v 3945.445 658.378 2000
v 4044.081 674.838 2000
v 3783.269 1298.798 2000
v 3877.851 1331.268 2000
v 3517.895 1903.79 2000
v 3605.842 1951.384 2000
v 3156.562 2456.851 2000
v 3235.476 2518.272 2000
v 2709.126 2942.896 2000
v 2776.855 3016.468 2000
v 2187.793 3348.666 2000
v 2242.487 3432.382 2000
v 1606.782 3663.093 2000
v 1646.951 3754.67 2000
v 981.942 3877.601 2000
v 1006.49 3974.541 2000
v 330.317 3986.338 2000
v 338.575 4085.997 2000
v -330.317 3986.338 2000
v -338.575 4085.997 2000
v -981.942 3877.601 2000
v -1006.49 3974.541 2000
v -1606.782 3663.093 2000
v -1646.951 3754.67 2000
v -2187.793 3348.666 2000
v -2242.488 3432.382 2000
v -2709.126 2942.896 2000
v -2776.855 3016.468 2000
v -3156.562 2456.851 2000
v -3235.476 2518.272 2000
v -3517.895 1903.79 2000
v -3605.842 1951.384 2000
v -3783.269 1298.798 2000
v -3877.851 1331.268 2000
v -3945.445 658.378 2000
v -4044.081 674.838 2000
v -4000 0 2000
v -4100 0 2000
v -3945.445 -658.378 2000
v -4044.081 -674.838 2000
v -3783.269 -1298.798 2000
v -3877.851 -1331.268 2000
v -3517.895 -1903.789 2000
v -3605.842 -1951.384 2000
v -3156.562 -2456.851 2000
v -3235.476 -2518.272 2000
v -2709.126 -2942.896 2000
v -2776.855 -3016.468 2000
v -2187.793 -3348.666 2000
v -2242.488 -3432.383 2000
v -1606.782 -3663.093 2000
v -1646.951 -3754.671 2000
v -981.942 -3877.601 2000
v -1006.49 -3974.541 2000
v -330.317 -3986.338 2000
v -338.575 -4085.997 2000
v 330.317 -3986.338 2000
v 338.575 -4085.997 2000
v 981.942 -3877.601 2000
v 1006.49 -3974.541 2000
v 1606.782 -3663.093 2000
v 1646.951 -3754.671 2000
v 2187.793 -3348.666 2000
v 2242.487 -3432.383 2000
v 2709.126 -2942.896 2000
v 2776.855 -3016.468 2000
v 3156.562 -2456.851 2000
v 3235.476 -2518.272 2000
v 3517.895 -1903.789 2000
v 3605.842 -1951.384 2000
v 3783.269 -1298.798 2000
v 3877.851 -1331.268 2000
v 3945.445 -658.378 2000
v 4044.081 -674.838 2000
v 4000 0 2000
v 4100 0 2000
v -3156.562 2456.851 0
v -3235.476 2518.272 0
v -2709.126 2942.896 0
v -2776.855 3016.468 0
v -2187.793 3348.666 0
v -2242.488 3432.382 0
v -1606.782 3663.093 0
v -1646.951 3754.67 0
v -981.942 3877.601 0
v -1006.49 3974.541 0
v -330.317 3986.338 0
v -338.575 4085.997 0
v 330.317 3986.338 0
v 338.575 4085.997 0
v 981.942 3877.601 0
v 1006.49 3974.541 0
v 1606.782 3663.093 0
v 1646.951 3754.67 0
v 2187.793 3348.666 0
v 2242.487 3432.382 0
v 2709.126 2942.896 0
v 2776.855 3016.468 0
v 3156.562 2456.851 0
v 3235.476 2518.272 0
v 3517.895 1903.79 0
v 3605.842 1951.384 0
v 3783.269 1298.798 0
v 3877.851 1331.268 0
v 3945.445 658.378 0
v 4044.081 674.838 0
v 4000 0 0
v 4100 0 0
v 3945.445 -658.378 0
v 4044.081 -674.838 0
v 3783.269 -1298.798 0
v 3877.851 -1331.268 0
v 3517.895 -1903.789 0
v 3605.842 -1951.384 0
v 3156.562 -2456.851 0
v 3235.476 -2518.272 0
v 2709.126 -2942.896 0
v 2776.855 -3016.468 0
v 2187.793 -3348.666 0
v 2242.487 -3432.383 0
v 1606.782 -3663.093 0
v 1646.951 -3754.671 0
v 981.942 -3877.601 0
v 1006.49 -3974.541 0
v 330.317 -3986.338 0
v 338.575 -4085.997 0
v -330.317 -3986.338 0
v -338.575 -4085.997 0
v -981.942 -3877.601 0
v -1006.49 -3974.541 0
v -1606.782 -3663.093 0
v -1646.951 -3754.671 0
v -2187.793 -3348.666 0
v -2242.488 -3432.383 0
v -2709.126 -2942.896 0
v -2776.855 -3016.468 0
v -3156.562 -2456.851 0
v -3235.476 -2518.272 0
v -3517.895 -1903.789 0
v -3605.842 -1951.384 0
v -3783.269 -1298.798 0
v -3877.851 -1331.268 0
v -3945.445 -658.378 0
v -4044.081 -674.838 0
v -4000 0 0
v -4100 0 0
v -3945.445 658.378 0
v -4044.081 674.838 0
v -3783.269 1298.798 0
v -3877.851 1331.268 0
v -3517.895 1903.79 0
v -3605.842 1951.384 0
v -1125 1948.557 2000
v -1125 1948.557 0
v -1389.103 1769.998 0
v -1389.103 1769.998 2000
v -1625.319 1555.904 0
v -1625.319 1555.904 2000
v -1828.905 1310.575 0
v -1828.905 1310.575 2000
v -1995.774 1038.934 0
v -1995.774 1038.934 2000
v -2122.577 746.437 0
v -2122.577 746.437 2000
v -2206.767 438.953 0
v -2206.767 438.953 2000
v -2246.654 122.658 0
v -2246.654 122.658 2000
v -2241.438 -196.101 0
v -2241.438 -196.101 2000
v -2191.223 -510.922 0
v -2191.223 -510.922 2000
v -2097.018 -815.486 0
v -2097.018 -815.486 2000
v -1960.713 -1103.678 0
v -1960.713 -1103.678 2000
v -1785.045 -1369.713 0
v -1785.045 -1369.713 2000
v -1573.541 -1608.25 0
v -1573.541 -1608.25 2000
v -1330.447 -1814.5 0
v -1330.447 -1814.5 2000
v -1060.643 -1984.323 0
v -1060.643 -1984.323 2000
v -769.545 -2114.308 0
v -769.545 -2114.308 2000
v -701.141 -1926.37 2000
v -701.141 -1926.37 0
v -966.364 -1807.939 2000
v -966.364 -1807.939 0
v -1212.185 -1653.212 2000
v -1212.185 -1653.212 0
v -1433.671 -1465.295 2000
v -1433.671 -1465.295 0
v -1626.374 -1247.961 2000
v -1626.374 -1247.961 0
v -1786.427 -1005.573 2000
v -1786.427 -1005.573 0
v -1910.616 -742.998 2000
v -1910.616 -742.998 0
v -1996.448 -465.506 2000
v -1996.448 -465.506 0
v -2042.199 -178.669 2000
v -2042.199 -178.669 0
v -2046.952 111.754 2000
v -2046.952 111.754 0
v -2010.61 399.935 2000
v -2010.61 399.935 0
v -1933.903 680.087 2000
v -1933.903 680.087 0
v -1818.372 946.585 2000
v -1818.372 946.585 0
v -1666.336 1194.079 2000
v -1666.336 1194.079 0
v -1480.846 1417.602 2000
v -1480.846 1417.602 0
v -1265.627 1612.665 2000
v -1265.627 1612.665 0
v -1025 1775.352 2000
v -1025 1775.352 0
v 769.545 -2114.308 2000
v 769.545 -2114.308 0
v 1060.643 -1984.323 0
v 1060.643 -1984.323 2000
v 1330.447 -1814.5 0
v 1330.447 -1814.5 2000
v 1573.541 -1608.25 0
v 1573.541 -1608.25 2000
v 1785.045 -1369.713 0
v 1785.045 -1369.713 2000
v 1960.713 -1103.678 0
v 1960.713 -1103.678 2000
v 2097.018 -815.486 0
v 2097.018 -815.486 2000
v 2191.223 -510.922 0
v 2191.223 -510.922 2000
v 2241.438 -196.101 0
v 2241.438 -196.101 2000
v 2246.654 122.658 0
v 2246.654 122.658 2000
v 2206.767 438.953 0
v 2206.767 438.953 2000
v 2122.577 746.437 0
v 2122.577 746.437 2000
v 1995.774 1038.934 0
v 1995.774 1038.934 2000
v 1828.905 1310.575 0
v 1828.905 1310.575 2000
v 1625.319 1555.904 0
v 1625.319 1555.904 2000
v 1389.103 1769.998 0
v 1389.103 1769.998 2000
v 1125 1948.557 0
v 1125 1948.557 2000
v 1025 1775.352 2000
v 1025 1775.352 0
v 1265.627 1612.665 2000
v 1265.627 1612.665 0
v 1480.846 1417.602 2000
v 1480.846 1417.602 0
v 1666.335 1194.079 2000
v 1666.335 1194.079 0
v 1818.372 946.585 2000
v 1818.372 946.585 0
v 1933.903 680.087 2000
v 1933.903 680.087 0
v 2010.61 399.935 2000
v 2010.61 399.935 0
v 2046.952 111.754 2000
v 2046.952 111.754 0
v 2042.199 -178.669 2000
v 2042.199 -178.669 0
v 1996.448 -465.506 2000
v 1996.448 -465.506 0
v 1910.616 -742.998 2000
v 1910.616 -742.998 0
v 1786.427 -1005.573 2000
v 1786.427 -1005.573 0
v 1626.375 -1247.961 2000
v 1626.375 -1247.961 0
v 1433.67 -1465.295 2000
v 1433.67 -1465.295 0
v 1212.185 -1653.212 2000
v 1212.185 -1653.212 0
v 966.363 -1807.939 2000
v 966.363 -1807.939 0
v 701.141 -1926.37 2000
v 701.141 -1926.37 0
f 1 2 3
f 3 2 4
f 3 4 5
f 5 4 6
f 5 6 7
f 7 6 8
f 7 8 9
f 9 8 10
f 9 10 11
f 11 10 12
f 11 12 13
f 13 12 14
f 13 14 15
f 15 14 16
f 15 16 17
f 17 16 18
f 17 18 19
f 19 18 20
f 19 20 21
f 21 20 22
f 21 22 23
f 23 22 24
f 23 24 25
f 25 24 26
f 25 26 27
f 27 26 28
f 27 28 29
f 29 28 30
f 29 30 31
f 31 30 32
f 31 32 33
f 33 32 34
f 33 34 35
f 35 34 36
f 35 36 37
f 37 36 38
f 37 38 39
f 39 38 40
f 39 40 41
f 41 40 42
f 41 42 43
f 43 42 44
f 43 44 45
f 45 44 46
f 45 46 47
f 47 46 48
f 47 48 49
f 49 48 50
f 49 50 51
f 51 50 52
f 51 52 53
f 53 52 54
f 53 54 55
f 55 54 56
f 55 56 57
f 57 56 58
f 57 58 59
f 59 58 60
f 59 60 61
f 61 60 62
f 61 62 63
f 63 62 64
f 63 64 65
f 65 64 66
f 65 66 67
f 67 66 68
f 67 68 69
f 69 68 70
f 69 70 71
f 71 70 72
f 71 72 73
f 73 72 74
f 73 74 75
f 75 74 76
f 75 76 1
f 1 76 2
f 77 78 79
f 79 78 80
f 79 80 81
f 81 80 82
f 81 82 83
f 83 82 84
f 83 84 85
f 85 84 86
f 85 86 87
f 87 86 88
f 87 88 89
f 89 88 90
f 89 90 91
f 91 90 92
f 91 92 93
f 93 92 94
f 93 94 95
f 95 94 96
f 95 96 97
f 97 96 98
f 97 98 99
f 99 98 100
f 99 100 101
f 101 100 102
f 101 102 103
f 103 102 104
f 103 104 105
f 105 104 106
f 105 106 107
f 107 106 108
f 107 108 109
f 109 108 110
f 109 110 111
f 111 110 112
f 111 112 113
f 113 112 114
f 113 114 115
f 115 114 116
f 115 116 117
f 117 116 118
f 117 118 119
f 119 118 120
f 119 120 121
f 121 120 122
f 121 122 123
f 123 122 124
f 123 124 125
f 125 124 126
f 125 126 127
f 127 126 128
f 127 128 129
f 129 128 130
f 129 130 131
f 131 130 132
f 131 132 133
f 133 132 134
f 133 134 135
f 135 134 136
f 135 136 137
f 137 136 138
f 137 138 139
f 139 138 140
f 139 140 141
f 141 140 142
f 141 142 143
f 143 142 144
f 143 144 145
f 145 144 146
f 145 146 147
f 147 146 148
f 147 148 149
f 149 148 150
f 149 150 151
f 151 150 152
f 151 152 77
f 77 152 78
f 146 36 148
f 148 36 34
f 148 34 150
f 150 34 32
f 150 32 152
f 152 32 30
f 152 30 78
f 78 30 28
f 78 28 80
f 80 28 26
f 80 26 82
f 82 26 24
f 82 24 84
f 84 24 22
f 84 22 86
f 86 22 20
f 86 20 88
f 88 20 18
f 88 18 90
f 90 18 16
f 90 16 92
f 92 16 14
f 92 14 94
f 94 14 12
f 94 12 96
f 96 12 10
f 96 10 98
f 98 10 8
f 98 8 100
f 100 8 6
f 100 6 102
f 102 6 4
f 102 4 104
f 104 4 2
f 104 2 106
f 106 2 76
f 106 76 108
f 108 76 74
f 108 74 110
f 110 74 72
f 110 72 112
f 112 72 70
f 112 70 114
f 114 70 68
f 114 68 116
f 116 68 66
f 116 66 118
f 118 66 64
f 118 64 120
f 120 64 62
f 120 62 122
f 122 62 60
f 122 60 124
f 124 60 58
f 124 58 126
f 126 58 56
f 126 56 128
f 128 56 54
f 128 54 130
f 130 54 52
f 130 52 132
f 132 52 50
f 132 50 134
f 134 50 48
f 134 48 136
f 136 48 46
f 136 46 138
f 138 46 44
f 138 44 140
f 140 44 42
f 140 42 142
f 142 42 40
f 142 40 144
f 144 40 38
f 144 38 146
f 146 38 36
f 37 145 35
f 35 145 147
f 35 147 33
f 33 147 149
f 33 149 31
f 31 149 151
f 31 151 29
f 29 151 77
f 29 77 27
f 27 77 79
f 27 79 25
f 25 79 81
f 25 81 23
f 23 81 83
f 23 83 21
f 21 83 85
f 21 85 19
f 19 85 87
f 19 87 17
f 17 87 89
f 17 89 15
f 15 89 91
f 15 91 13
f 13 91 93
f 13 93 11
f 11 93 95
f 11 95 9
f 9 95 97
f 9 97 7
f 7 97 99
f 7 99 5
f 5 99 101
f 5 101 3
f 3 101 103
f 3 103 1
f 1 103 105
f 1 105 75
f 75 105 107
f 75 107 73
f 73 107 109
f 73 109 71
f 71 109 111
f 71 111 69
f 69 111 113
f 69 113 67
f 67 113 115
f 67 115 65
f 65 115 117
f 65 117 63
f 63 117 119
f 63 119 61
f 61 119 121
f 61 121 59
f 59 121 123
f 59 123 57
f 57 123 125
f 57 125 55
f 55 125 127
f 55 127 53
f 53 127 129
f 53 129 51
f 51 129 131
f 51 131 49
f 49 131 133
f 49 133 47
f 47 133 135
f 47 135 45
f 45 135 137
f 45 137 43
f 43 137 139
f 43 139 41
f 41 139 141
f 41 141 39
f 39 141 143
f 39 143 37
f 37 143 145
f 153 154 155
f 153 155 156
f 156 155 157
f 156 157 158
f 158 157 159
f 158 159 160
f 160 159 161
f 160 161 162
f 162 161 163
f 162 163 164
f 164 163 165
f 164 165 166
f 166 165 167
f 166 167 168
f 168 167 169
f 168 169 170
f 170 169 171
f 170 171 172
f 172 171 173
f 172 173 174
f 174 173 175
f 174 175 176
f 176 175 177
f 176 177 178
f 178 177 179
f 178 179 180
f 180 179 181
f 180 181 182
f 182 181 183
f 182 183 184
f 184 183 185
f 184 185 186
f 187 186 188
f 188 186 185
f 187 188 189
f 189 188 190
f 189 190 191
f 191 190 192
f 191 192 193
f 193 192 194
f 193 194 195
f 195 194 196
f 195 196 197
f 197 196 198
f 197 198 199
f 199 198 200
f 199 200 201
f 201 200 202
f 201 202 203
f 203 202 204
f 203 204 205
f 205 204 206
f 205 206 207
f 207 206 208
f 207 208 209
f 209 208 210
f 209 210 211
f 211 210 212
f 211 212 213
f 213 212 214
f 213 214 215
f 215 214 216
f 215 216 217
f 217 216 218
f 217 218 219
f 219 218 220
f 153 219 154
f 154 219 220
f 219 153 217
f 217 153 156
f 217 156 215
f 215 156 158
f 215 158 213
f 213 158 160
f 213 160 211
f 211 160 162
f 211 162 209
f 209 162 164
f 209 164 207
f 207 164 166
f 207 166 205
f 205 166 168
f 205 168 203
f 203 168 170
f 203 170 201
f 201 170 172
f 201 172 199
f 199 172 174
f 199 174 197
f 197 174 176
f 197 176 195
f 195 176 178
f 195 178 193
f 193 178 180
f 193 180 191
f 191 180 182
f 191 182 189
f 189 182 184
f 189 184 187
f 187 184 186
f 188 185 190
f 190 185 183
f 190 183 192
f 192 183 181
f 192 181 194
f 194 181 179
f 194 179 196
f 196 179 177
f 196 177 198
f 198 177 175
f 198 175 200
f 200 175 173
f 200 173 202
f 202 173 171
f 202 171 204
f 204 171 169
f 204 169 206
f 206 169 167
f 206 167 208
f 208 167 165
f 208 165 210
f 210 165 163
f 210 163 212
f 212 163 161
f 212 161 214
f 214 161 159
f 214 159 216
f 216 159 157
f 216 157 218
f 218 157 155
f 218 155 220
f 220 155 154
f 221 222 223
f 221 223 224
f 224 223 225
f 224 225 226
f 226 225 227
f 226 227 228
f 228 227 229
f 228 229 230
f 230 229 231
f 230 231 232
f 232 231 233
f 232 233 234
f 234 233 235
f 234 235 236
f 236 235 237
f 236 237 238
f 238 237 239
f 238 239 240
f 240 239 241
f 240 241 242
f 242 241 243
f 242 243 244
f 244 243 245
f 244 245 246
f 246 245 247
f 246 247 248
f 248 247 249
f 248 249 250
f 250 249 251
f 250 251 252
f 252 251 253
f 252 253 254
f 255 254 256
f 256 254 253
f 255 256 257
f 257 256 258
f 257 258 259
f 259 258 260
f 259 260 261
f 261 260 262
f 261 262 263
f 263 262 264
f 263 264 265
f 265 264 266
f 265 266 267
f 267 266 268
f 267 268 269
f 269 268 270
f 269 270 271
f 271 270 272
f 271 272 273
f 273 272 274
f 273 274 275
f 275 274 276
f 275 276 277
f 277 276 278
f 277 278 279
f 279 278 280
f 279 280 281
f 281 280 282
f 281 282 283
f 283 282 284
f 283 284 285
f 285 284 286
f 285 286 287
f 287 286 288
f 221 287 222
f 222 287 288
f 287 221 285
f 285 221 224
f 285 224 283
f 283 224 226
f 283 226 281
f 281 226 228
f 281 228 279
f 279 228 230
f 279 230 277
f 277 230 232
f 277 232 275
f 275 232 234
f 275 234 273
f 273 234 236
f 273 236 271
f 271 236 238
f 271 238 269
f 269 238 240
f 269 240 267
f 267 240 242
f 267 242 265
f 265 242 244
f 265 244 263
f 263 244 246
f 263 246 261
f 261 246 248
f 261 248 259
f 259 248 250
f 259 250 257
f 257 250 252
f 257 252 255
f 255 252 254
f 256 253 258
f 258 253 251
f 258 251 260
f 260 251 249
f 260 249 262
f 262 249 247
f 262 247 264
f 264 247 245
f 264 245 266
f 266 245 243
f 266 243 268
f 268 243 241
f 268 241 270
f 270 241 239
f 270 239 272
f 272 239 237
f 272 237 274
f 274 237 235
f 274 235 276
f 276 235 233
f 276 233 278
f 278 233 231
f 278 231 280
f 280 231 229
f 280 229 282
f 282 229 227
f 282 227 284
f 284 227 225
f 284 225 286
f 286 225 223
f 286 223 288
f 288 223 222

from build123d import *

# Parameters (mm, degrees)
SKETCH_1_R        = 4100
SKETCH_1_R_2      = 4000
EXTRUDE_1_DEPTH   = 2000
EXTRUDE_2_DEPTH   = 2000
EXTRUDE_2_2_DEPTH = 2000


with BuildPart() as part:
    # 草图1 → 凸台-拉伸1 (new body)
    with BuildSketch(Plane.XY):
        Circle(SKETCH_1_R)
        Circle(SKETCH_1_R_2, mode=Mode.SUBTRACT)
    extrude(amount=EXTRUDE_1_DEPTH)


with BuildPart() as body_2:
    # 草图2 → 凸台-拉伸2 (new body)
    with BuildSketch(Plane.XY):
        with BuildLine():
            Line((-769.545322483, -2114.308396768), (-701.141293818, -1926.369872611))
            ThreePointArc((-701.141293818, -1926.369872611), (-2042.199131088, -178.669272633), (-1025, 1775.352077758))
            Line((-1025, 1775.352077758), (-1125, 1948.557158515))
            ThreePointArc((-1125, 1948.557158515), (-2241.438070706, -196.100421182), (-769.545322483, -2114.308396768))
        make_face()
    extrude(amount=EXTRUDE_2_DEPTH)


with BuildPart() as body_3:
    # 草图2 → Extrude 2 2 (new body)
    with BuildSketch(Plane.XY):
        with BuildLine():
            Line((769.545322483, -2114.308396768), (701.141293818, -1926.369872611))
            ThreePointArc((701.141293818, -1926.369872611), (2042.199131088, -178.669272633), (1025, 1775.352077758))
            Line((1025, 1775.352077758), (1125, 1948.557158515))
            ThreePointArc((1125, 1948.557158515), (2241.438070706, -196.100421182), (769.545322483, -2114.308396768))
        make_face()
    extrude(amount=EXTRUDE_2_2_DEPTH)


solid = Compound([part.part, body_2.part, body_3.part])
